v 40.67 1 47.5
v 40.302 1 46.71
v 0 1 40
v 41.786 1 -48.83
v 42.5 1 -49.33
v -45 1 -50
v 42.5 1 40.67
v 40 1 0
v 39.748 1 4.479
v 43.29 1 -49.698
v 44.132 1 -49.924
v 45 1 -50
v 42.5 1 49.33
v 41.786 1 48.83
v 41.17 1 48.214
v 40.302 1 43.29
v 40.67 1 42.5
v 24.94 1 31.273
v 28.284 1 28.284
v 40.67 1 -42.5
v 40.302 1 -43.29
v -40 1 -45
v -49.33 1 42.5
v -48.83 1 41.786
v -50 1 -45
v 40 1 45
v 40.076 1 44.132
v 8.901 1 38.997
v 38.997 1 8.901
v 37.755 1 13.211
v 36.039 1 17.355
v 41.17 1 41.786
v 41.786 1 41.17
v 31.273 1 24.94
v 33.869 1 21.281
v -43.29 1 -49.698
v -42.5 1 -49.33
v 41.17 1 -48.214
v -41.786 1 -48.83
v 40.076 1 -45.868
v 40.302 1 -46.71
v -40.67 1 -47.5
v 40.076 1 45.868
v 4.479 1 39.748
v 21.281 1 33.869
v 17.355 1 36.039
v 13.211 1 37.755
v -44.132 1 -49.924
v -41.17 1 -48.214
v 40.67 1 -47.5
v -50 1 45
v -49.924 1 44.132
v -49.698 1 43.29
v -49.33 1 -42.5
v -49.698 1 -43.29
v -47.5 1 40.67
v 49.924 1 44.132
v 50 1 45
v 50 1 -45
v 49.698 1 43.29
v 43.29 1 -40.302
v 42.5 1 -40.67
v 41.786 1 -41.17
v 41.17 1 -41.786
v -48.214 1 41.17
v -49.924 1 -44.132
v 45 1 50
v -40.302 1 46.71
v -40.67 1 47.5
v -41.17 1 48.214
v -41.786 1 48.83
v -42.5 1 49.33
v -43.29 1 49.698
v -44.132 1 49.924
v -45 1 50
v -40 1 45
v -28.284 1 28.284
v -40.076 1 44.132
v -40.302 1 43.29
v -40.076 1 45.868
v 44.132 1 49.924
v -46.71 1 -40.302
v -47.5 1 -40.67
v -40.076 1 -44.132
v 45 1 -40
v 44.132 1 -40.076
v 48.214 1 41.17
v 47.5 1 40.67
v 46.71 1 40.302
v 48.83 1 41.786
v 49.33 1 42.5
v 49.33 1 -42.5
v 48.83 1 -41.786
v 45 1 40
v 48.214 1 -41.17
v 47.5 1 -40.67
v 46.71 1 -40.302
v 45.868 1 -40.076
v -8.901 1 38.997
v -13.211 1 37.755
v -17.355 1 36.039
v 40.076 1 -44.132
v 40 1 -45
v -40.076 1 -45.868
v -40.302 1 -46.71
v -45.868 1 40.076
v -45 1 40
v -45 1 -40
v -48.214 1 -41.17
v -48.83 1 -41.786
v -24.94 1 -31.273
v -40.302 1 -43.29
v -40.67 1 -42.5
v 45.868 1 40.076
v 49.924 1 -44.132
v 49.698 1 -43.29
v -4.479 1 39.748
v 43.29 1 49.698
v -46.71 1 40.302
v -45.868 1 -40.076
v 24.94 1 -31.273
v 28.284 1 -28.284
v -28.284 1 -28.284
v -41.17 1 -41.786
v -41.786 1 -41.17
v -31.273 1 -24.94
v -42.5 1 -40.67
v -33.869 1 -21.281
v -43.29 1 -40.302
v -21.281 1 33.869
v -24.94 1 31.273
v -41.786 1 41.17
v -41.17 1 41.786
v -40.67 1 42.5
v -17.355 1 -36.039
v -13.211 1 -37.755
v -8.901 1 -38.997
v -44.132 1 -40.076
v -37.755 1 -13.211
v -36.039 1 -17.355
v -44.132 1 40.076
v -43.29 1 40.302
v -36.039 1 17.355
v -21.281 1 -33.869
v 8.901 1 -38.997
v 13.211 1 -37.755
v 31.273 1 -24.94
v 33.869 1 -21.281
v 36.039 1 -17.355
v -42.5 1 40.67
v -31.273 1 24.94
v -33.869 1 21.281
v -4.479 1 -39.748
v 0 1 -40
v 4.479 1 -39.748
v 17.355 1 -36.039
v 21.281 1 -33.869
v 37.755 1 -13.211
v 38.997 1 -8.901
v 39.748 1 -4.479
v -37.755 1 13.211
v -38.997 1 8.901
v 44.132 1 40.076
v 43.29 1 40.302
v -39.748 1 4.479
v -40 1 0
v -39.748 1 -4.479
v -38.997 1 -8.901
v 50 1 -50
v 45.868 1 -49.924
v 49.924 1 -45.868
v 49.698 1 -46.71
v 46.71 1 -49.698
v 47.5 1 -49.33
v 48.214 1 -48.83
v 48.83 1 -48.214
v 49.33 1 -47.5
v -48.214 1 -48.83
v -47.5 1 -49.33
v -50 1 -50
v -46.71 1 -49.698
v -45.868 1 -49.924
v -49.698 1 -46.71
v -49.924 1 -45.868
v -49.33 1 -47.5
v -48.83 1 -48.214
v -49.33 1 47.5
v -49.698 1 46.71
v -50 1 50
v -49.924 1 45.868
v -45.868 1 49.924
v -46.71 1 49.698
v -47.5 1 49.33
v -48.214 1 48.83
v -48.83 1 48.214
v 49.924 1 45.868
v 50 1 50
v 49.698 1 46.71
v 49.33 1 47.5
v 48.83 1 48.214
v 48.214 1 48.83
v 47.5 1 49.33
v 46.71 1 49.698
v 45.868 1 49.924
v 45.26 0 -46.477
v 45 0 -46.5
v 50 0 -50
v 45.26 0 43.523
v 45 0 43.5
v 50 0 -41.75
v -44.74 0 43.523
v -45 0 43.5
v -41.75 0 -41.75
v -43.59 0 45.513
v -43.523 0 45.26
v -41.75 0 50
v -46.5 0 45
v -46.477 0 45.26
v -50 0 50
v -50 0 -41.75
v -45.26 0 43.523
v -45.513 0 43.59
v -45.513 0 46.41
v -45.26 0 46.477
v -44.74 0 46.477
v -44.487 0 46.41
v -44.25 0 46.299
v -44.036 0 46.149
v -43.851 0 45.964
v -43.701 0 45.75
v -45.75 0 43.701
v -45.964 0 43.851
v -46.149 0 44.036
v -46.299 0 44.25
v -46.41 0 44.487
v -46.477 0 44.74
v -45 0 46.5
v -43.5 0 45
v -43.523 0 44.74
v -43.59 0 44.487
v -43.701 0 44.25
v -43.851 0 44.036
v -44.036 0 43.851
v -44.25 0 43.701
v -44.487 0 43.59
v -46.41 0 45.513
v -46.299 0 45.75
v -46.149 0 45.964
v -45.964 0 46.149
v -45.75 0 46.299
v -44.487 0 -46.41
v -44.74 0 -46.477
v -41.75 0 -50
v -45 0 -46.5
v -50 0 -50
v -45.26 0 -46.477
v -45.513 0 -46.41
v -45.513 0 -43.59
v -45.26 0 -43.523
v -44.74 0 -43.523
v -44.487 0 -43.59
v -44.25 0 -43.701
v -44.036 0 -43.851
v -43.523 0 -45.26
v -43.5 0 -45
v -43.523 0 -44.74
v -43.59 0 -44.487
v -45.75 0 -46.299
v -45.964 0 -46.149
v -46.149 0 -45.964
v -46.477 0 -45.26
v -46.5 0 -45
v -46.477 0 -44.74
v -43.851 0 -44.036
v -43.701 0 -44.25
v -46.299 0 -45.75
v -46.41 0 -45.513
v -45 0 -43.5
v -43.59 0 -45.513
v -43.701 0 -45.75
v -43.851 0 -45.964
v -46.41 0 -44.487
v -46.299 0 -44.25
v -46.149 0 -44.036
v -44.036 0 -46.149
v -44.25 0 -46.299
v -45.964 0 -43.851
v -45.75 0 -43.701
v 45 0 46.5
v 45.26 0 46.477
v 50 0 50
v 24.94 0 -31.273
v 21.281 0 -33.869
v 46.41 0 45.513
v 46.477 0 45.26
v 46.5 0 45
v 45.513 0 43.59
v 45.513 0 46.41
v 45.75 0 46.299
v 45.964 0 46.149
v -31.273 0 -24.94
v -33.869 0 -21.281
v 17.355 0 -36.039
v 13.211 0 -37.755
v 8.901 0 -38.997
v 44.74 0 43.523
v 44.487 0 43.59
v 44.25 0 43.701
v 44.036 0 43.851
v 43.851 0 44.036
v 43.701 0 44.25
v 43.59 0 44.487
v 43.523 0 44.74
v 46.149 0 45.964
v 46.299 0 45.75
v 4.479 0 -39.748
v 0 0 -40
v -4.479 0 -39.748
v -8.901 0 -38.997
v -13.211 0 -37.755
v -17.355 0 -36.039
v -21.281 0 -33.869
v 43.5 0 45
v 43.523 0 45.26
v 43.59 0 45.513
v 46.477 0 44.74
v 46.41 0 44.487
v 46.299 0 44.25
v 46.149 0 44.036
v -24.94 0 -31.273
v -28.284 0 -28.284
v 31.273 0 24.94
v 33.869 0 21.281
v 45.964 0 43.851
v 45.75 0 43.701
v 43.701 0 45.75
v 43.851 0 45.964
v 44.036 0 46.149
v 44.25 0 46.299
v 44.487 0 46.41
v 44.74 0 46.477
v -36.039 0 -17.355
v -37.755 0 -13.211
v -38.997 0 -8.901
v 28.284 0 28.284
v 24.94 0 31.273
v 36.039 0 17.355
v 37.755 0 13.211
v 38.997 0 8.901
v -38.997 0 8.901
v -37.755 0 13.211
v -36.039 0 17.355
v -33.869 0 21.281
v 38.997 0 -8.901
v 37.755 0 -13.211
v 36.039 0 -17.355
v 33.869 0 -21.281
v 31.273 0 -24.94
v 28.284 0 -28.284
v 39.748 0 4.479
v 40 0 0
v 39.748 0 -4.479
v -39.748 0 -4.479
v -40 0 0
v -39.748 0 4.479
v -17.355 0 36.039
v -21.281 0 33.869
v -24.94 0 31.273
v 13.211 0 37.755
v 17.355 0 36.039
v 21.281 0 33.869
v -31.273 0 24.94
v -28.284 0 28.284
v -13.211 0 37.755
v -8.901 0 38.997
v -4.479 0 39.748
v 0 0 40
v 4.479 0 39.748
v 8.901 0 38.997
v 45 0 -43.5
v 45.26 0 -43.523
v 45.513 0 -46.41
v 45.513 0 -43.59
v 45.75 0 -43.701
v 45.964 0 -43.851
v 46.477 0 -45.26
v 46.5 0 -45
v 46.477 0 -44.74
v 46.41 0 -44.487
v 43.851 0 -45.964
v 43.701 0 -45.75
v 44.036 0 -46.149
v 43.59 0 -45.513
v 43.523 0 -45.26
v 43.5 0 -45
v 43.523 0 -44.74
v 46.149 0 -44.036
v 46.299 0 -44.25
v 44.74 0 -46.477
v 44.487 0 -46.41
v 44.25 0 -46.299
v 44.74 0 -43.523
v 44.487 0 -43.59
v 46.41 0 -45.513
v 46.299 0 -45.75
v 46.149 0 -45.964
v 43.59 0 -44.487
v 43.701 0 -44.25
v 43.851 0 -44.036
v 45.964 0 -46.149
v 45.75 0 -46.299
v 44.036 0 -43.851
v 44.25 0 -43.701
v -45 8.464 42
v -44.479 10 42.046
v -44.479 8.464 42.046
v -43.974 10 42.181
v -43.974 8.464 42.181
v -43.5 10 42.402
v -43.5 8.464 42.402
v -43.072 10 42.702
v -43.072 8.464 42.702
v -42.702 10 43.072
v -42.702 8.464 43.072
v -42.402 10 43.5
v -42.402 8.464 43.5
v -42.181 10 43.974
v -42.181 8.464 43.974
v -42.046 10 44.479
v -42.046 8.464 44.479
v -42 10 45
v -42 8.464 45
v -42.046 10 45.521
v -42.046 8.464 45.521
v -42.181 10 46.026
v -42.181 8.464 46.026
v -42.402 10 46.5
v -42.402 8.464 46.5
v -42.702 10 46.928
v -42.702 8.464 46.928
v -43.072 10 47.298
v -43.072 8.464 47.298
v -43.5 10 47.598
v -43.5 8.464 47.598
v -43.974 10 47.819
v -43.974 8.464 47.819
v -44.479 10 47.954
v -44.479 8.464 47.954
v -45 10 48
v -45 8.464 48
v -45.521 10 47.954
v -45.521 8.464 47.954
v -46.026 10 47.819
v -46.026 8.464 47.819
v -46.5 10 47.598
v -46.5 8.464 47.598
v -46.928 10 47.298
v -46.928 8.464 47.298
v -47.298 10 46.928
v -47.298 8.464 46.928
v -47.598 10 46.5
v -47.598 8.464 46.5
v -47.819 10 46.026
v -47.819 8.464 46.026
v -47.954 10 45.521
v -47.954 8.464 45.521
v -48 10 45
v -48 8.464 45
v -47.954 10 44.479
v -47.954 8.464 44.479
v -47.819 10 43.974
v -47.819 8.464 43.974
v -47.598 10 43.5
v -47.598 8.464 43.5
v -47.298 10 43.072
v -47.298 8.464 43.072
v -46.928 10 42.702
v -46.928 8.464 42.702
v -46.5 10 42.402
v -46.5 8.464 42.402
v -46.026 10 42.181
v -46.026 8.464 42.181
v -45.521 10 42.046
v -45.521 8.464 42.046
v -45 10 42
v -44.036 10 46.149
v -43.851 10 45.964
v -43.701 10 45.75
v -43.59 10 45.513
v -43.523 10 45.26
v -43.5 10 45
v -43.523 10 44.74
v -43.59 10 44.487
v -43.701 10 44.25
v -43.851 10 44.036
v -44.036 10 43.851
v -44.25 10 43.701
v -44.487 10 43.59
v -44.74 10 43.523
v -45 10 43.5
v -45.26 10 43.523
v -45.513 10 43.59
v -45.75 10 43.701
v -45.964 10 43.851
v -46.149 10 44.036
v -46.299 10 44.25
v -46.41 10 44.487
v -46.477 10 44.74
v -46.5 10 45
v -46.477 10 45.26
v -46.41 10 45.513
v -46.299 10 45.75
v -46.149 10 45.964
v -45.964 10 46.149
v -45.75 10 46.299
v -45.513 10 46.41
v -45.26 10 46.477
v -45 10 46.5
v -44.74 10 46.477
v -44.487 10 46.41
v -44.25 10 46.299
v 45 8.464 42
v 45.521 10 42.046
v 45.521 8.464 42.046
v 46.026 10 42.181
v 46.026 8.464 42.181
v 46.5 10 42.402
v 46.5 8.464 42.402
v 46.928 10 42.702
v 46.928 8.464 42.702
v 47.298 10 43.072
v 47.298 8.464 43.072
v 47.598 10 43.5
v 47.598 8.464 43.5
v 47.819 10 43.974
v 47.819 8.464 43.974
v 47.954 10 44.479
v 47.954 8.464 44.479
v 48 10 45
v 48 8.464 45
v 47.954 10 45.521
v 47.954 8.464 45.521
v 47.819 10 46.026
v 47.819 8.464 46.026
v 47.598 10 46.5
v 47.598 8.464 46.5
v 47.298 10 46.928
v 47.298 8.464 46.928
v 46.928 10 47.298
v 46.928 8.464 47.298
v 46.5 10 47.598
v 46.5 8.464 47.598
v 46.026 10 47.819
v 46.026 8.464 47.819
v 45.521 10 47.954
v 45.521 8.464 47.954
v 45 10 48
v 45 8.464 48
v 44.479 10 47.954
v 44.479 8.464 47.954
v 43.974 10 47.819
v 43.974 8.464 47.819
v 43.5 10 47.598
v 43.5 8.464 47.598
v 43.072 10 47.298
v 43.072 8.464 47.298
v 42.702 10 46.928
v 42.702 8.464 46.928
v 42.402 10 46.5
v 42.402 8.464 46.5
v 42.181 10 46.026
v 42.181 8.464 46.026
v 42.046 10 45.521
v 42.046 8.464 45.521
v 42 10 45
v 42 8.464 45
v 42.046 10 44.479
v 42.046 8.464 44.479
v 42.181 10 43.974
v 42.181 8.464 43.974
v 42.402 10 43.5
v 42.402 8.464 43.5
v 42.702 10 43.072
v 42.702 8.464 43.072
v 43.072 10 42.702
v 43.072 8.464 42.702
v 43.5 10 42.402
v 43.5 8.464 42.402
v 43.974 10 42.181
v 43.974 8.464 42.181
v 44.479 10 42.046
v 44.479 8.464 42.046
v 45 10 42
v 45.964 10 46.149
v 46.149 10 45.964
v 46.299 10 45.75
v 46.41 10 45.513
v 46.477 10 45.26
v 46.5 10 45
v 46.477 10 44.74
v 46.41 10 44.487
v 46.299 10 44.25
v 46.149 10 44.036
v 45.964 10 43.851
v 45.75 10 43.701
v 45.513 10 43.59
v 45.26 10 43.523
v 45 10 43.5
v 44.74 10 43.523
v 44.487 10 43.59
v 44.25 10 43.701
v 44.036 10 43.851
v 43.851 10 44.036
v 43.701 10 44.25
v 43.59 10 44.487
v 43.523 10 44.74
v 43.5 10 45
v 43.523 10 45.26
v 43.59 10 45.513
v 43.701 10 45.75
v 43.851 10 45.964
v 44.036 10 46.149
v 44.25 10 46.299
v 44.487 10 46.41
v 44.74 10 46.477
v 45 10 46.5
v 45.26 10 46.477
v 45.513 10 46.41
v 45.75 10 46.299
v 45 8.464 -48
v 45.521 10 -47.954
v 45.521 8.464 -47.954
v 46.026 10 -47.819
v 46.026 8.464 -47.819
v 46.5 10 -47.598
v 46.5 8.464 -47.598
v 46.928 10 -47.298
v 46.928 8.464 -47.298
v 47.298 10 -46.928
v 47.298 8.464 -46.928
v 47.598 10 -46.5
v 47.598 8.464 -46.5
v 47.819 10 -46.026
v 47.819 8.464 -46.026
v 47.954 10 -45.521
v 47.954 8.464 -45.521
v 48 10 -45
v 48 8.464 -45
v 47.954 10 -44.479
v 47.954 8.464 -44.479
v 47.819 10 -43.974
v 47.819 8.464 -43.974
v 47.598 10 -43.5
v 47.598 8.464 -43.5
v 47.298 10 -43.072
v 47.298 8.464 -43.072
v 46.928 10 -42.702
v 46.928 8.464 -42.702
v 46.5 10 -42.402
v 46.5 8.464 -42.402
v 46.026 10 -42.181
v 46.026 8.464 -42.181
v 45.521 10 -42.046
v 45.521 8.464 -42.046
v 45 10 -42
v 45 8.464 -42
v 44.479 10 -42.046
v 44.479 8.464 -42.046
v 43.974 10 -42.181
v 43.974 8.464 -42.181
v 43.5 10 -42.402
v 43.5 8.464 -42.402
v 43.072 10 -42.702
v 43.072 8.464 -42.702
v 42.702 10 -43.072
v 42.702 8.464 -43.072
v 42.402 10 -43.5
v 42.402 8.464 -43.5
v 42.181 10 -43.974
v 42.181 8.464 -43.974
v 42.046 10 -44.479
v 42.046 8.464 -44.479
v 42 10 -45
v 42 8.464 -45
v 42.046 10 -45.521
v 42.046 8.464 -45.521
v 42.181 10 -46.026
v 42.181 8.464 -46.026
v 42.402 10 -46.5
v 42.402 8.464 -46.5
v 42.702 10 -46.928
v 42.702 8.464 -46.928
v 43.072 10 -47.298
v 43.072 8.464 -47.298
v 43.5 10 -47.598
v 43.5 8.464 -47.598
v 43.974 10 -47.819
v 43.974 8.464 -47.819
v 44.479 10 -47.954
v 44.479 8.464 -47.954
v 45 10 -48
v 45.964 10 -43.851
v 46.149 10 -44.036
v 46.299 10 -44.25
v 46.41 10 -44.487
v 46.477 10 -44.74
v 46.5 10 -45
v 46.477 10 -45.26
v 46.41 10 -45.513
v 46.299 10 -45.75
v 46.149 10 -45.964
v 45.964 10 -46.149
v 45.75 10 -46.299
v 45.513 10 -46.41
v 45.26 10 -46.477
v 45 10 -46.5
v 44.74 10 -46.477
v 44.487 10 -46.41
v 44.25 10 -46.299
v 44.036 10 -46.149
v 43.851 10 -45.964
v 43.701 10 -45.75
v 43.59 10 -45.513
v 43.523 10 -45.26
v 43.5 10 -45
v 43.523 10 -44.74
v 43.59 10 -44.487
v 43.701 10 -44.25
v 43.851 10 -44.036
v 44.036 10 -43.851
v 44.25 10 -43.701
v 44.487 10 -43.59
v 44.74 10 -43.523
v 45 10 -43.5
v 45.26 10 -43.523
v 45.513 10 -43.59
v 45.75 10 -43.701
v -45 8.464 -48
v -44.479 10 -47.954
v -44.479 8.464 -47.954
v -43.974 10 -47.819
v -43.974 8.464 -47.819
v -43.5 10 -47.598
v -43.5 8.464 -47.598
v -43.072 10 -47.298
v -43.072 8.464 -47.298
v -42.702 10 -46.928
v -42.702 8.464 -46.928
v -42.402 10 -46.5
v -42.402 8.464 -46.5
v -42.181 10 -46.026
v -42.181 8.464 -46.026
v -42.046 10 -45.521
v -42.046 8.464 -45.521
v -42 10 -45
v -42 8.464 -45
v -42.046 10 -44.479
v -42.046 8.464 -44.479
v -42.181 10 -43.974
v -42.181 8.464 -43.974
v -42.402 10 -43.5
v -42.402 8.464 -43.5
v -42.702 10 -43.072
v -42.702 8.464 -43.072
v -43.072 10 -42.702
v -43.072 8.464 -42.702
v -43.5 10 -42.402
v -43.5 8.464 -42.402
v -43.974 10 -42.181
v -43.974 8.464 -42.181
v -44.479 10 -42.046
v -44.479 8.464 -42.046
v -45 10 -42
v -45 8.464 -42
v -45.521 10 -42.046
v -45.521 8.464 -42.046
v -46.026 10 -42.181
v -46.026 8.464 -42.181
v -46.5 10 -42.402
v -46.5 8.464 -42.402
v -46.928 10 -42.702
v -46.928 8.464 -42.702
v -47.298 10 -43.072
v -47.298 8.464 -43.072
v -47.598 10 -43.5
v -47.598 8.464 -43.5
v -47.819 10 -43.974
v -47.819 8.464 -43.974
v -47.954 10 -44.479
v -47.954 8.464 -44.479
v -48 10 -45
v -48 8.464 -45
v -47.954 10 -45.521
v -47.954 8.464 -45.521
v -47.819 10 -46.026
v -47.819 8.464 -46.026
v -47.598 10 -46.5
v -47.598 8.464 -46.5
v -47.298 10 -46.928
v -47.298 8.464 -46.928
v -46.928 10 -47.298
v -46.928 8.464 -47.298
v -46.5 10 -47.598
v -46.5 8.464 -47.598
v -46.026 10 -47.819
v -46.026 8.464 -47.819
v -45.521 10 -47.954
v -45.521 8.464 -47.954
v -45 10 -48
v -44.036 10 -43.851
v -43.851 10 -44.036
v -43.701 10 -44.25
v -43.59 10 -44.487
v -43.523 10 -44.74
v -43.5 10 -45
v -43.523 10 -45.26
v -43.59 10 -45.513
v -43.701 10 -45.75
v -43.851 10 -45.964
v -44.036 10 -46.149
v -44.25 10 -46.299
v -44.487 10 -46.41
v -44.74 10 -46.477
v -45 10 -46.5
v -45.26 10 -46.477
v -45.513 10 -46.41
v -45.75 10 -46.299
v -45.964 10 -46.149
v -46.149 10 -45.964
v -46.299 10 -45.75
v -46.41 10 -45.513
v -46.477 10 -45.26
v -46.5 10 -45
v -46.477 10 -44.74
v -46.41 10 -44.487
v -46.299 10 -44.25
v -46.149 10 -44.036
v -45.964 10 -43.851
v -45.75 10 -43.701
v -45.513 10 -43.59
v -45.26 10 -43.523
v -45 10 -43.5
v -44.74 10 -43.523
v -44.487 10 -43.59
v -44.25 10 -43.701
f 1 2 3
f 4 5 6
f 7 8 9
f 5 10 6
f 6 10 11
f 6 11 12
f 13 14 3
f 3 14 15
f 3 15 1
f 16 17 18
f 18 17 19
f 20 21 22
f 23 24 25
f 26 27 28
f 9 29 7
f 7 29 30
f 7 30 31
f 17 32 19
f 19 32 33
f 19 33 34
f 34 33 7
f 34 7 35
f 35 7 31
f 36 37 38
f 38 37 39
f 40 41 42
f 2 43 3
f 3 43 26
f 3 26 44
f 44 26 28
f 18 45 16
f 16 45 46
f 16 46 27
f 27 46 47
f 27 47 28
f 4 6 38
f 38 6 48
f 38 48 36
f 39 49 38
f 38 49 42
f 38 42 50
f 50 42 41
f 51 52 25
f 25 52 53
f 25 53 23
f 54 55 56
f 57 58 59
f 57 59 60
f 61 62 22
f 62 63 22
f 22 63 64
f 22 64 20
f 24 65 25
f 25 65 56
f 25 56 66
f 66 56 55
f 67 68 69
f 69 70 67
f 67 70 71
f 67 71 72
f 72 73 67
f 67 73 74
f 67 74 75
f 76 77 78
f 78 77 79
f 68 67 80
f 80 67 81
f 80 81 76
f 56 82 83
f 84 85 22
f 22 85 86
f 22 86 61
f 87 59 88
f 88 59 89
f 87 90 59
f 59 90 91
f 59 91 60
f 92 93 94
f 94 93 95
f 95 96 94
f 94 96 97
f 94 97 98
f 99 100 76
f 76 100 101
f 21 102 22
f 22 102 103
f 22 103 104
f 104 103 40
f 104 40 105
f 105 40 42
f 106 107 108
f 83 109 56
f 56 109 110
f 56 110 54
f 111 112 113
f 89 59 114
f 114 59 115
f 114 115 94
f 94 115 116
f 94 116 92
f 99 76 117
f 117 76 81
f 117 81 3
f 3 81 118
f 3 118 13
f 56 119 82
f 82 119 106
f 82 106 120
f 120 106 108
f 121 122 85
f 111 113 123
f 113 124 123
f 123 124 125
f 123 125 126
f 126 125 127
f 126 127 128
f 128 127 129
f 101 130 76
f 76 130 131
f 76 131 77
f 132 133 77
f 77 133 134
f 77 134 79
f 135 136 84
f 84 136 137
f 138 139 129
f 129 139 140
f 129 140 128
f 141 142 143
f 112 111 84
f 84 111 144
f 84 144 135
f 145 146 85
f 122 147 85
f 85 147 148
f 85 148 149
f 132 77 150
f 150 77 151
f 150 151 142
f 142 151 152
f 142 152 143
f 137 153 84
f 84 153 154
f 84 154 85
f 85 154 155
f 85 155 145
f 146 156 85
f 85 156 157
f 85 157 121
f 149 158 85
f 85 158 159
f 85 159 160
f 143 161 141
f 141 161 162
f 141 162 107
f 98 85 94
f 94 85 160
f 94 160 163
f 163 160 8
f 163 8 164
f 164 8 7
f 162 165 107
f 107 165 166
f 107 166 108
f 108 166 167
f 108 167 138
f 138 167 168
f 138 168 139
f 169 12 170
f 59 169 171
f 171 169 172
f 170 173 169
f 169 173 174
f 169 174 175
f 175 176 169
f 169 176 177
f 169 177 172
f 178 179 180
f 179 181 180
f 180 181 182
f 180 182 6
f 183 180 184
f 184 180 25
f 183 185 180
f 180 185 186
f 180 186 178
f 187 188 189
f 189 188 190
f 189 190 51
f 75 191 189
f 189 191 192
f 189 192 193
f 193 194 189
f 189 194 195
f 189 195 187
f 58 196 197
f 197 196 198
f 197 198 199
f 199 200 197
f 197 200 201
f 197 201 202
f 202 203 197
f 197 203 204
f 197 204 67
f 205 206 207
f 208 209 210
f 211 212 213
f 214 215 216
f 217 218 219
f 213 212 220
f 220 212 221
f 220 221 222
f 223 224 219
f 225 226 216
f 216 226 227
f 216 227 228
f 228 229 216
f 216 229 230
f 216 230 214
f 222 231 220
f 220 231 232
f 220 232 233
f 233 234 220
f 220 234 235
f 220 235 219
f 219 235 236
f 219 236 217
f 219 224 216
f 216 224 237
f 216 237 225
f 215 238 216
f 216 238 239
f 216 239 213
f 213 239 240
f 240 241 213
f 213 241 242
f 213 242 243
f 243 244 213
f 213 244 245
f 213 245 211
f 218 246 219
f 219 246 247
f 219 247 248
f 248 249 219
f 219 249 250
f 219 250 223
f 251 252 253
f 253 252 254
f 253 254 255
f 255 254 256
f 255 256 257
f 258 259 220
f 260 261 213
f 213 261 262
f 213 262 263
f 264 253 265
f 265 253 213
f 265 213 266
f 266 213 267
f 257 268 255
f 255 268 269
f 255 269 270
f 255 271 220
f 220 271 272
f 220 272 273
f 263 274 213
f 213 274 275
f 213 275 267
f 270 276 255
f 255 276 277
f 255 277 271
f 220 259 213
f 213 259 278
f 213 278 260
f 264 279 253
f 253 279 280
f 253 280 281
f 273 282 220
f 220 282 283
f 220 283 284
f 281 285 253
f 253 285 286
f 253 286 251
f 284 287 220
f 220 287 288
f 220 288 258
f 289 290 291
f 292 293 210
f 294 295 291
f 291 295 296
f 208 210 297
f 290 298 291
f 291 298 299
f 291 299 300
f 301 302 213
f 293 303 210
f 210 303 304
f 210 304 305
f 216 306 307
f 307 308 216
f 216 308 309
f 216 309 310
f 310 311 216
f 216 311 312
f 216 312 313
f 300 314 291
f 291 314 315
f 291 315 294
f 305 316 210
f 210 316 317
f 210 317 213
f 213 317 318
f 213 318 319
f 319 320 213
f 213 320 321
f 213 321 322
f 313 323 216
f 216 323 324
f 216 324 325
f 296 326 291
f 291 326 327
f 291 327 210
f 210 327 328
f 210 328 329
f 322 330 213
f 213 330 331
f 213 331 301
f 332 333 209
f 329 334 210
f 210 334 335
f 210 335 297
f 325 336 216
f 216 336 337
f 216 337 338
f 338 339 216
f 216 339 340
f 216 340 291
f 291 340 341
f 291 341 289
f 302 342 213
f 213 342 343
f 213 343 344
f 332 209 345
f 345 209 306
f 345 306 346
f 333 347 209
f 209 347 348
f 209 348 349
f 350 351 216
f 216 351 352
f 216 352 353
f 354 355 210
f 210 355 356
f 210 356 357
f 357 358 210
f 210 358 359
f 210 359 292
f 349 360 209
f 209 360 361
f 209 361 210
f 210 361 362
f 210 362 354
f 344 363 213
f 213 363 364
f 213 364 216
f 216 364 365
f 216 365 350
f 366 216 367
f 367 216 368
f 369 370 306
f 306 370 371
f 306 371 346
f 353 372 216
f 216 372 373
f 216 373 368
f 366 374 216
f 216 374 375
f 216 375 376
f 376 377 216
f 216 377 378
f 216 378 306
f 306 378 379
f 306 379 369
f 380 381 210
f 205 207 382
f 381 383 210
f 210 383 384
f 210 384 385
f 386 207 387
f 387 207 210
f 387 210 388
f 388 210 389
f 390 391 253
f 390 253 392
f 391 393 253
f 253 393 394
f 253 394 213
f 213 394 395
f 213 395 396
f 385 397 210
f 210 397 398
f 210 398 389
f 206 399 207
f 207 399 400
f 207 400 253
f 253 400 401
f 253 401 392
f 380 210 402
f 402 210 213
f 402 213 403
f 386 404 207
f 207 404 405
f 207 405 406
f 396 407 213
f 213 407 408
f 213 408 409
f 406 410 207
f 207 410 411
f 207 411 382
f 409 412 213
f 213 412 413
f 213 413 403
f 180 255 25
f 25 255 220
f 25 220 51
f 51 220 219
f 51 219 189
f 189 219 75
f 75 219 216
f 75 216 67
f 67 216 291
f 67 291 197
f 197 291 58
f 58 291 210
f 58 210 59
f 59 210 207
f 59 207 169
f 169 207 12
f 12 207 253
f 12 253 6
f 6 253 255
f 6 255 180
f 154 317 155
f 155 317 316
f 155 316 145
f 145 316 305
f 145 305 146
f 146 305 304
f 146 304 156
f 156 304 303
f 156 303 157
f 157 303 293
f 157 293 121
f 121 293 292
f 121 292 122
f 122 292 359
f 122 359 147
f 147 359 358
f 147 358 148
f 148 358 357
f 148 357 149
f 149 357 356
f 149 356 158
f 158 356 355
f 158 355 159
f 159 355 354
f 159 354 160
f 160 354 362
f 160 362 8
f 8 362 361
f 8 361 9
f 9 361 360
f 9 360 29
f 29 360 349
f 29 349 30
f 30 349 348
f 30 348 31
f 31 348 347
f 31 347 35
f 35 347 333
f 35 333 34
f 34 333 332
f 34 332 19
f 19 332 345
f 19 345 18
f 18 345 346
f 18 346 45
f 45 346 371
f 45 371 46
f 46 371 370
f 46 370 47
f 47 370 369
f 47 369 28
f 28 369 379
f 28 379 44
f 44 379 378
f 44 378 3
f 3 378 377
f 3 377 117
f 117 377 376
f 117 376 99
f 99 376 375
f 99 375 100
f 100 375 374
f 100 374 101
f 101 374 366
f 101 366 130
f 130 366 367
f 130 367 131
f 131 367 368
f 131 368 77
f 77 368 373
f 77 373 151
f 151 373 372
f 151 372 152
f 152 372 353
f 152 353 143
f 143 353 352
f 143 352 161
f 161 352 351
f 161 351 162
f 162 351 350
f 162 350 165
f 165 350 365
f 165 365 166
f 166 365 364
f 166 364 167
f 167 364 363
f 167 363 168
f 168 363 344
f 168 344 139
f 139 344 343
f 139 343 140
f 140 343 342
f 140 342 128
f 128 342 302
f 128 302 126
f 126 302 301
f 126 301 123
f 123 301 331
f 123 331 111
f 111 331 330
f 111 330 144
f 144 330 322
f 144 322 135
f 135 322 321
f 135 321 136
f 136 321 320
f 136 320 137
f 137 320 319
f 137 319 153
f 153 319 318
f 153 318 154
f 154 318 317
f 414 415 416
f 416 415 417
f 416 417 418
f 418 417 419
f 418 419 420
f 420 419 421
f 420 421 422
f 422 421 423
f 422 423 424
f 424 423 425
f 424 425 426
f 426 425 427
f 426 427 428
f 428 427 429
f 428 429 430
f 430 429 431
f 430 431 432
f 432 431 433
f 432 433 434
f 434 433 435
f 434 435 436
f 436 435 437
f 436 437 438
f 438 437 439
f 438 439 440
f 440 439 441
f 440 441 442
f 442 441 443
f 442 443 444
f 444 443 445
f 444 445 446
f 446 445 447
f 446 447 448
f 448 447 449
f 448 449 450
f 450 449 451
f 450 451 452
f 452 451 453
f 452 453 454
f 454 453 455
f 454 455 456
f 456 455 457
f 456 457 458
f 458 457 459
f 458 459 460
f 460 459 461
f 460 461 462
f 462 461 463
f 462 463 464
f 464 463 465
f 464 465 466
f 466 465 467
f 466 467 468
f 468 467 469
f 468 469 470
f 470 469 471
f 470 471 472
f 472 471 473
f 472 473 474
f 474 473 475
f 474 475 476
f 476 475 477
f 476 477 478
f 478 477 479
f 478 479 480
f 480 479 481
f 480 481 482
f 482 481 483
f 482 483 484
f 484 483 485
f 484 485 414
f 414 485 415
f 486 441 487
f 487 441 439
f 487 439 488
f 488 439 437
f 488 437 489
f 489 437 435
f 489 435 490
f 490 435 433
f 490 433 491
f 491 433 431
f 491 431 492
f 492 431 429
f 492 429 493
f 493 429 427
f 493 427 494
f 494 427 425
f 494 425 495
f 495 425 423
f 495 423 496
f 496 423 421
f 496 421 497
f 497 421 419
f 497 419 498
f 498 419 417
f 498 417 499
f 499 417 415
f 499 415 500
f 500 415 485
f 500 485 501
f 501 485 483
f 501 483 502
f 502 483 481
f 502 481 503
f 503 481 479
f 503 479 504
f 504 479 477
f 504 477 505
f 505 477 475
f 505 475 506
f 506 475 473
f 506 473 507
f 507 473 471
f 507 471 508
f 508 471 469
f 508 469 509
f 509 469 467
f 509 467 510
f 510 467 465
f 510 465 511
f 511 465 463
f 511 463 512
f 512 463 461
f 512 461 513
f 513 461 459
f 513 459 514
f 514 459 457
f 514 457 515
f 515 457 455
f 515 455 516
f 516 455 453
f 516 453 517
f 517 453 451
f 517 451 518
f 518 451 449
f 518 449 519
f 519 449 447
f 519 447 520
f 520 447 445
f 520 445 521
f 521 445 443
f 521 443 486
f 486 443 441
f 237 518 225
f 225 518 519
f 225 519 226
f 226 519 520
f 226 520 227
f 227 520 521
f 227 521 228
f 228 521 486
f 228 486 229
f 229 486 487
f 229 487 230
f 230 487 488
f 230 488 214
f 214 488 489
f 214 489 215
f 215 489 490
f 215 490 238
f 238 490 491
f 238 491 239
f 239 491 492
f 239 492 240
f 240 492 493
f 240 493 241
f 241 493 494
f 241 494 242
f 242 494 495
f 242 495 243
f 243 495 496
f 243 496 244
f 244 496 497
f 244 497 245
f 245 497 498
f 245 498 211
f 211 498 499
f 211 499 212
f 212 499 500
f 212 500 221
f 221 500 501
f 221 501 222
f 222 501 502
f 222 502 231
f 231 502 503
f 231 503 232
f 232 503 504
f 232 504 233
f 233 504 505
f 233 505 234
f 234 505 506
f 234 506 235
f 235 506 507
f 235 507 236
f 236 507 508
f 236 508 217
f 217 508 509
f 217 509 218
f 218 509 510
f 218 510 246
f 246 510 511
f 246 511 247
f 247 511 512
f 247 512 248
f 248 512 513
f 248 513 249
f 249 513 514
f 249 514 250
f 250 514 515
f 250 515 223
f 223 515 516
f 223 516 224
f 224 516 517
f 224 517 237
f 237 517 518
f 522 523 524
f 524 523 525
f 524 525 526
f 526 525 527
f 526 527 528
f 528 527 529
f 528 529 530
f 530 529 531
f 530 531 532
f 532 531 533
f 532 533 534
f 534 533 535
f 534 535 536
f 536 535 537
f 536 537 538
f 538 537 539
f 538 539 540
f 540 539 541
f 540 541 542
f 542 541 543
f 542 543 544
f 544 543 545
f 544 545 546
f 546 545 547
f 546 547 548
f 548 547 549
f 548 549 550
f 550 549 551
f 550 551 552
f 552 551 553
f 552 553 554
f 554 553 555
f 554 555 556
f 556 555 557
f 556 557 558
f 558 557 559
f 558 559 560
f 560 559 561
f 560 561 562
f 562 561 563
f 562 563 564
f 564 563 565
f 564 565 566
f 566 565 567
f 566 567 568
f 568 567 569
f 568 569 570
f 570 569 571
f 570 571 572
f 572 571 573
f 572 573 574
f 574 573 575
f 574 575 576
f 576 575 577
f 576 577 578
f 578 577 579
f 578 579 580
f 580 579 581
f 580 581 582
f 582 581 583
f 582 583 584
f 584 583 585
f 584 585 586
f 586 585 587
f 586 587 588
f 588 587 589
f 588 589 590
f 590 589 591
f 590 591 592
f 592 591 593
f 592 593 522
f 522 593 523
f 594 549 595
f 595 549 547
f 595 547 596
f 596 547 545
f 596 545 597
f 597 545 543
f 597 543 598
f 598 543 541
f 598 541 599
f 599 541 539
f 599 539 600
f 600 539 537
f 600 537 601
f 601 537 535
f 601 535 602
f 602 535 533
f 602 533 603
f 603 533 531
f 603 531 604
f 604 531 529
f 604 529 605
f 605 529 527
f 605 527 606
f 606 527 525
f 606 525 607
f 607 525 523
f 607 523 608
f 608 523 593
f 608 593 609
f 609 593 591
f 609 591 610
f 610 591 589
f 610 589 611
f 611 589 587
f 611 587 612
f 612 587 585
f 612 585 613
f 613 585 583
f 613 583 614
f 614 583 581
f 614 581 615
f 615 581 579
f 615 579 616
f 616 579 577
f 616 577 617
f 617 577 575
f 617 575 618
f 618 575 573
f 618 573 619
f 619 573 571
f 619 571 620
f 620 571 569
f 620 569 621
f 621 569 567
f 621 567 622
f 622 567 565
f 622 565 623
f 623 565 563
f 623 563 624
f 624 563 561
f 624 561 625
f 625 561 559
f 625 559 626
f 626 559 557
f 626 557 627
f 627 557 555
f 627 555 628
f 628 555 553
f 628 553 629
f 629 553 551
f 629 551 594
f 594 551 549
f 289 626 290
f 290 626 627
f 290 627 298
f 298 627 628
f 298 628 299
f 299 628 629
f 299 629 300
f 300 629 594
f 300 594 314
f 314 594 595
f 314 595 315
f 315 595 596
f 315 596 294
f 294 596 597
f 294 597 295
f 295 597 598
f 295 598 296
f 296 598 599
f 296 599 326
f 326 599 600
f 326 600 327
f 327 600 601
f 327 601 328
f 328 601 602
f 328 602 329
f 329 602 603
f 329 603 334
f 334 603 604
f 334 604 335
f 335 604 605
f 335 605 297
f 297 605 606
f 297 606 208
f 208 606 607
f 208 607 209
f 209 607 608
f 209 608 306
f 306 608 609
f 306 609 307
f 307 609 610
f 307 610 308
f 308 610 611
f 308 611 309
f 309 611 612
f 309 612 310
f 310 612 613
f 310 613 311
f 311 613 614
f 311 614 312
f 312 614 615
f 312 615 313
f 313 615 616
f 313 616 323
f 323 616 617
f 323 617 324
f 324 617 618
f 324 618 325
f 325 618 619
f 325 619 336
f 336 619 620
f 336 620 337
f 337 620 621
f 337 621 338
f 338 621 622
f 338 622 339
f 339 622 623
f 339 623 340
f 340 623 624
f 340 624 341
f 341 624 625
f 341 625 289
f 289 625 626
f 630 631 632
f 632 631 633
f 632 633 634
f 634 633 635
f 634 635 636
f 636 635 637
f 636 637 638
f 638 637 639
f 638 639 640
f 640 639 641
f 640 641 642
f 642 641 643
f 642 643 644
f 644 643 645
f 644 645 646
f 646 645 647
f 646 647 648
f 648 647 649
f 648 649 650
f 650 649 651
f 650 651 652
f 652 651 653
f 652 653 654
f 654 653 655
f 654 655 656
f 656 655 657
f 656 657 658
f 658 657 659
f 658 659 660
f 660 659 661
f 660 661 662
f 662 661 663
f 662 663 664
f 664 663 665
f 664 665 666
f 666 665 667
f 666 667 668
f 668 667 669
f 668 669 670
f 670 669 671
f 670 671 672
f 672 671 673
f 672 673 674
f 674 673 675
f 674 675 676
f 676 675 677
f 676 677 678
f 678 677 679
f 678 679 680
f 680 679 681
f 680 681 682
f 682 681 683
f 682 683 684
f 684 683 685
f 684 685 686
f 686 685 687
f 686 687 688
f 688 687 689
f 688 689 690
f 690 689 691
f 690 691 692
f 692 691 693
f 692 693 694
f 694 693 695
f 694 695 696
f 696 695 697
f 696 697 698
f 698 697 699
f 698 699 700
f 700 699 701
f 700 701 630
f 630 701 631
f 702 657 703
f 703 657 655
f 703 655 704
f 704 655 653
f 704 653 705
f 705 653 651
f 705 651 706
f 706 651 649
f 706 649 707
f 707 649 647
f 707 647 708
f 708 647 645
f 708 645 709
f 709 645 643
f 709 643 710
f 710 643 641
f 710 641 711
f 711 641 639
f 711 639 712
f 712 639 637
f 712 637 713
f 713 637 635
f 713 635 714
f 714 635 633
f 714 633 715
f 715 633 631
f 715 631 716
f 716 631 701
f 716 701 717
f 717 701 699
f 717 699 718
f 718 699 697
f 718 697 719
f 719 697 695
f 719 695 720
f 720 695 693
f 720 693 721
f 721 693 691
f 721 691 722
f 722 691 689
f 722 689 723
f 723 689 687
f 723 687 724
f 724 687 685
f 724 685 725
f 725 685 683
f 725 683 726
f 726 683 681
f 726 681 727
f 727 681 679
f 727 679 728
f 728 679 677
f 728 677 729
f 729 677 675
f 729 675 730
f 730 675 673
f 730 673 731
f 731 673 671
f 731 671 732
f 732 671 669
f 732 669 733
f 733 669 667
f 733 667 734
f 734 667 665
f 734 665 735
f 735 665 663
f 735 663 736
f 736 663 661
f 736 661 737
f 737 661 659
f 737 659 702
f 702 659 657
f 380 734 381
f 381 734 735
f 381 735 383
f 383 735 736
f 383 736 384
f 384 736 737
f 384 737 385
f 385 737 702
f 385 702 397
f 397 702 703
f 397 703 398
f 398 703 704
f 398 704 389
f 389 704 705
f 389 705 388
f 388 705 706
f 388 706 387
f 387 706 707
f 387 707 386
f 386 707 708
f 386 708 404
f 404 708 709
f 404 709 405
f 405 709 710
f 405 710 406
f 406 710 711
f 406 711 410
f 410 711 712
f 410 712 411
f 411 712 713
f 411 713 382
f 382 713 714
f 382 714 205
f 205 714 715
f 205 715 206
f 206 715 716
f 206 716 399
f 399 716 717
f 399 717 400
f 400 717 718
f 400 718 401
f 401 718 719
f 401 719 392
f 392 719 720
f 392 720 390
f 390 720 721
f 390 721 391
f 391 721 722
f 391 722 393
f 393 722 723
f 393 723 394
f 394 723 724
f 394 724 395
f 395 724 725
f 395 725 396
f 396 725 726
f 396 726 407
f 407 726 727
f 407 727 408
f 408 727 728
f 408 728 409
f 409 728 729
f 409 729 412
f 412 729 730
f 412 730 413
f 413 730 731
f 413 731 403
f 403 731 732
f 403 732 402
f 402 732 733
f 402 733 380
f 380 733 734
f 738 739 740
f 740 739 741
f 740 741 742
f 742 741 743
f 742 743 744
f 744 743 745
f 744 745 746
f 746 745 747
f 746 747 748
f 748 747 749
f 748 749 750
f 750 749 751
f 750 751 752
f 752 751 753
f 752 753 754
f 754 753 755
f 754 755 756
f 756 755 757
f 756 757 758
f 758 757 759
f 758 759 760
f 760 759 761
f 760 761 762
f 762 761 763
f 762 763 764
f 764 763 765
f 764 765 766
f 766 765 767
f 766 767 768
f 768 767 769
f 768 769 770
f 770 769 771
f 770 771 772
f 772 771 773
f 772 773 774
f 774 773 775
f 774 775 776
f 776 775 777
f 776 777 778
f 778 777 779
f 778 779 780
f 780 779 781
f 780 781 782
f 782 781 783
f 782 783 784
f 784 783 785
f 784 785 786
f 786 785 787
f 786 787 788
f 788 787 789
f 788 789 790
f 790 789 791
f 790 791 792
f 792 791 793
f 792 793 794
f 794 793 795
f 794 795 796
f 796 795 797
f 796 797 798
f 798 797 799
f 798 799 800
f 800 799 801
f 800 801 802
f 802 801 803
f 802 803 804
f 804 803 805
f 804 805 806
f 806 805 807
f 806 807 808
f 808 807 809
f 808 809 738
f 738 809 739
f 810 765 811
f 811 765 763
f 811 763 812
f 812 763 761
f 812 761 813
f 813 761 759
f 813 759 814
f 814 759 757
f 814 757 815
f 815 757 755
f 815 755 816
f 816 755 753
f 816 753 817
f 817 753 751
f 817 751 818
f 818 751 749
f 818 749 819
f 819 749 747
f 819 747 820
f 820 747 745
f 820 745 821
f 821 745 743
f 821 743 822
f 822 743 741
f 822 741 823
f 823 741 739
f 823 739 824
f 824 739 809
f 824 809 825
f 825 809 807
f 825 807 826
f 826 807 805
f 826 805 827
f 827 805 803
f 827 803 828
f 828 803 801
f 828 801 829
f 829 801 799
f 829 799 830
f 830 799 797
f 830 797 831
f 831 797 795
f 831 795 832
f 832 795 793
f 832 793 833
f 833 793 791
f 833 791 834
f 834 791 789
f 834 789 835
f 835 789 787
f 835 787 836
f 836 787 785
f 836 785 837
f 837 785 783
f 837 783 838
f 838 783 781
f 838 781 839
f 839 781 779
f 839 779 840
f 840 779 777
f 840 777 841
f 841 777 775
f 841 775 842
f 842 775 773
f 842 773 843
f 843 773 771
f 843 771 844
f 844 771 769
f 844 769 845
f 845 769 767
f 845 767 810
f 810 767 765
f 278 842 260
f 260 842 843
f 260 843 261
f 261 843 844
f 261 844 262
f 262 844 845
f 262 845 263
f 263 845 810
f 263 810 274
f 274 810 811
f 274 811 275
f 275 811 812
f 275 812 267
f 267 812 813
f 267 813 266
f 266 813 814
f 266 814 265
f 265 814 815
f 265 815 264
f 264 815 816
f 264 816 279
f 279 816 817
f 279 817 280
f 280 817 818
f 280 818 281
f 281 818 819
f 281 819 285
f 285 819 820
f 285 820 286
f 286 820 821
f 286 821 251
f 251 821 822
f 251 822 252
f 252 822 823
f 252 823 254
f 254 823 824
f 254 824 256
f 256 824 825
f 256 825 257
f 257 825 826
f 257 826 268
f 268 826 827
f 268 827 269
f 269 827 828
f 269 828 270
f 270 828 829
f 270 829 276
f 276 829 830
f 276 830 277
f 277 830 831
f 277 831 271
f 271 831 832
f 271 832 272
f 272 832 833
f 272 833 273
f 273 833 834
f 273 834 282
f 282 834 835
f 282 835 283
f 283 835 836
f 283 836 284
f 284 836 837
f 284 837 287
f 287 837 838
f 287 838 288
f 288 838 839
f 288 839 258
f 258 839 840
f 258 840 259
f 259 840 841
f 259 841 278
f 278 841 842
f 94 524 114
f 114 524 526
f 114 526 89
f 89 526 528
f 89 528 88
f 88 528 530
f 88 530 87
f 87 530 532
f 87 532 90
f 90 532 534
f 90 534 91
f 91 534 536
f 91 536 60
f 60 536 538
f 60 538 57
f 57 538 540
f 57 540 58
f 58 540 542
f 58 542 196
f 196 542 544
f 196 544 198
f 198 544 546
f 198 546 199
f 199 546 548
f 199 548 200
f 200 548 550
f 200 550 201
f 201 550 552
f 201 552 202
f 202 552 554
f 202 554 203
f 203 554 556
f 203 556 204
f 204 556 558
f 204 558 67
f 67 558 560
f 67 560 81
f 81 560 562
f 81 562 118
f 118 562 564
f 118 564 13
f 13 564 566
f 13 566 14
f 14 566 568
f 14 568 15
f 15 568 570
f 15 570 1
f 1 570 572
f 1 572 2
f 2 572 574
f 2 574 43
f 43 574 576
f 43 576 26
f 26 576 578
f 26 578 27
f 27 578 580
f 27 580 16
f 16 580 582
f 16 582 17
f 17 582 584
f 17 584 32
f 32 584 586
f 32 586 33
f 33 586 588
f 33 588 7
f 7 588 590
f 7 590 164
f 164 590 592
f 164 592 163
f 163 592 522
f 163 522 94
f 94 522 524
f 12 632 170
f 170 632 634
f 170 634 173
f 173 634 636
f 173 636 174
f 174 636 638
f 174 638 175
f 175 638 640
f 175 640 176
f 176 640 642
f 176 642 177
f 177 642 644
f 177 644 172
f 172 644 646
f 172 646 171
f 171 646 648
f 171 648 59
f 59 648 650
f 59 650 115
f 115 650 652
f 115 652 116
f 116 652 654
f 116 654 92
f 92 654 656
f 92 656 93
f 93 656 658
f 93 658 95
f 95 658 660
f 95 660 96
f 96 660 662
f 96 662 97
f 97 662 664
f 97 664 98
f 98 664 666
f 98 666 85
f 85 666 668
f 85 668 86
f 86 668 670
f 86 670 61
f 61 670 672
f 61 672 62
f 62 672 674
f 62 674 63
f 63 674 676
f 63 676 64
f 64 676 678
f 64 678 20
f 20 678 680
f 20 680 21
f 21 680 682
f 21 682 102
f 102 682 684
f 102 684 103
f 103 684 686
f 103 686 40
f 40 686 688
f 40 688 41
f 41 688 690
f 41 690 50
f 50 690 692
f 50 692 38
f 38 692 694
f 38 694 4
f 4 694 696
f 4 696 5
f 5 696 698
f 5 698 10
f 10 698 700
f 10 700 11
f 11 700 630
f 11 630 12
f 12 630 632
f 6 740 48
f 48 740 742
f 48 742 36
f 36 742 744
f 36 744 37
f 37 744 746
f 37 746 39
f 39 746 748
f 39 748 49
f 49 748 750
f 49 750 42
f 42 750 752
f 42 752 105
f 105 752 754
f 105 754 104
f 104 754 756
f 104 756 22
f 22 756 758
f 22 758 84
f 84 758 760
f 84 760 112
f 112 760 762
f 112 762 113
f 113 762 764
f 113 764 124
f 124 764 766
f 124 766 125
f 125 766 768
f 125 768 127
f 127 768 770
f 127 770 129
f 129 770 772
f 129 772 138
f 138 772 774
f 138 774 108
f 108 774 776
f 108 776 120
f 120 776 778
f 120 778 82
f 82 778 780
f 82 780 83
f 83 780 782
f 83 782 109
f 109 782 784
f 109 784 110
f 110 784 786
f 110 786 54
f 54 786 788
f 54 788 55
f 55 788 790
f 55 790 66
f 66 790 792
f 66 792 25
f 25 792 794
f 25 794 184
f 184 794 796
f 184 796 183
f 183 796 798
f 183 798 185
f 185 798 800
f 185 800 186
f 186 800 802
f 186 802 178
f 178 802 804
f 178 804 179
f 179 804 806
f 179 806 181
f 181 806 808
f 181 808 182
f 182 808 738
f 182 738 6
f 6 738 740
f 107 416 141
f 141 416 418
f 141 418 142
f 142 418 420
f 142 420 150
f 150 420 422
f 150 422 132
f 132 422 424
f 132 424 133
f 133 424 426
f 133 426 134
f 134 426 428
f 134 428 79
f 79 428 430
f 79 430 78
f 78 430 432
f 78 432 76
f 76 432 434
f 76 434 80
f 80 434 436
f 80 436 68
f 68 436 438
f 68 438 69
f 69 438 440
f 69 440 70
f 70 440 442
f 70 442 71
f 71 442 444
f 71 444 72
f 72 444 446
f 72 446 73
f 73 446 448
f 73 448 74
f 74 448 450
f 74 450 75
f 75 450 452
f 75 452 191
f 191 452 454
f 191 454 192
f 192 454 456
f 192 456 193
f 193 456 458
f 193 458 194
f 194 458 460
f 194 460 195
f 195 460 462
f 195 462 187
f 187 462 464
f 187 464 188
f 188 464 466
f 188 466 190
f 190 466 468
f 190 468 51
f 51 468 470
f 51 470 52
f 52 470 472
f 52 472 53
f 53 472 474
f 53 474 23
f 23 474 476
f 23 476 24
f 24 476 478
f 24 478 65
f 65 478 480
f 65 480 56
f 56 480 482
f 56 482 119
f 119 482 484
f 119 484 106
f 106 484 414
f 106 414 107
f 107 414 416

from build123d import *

# Parameters (mm, degrees)
SKETCH1_W                 = 100
SKETCH1_H                 = 100
SKETCH1_R                 = 40
BOSS_EXTRUDE1_DEPTH       = 1
SKETCH2_R                 = 3
SKETCH2_R_2               = 1.5
BOSS_EXTRUDE2_DEPTH       = 9
CUT_EXTRUDE1_START        = 9
SKETCH2_3_R               = 1.5
CUT_EXTRUDE1_DEPTH        = 10
MIRROR2_COPY_1_SKETCH_R   = 3
MIRROR2_COPY_1_SKETCH_R_2 = 1.5
MIRROR2_COPY_1_DEPTH      = 9
MIRROR2_START             = 9
MIRROR2_COPY_2_SKETCH_R   = 1.5
MIRROR2_COPY_2_DEPTH      = 10
CHAMFER1_SIZE             = 2
CHAMFER1_SIZE_2           = 7.464101615


with BuildPart() as part:
    # Sketch1 → Boss-Extrude1 (new body)
    with BuildSketch(Plane(origin=(0, 0, 0), x_dir=(1, 0, 0), z_dir=(0, 1, 0))):
        Rectangle(SKETCH1_W, SKETCH1_H)
        with Locations(Location((0, 0, 0), (0, 0, 270))):
            Circle(SKETCH1_R, mode=Mode.SUBTRACT)
    extrude(amount=BOSS_EXTRUDE1_DEPTH)

    # Sketch2 → Boss-Extrude2 (add)
    # profile 1 of 2: a face of its own
    with BuildSketch(Plane(origin=(0, 1, 0), x_dir=(1, 0, 0), z_dir=(0, 1, 0))):
        with Locations(Location((-45, -45, 0), (0, 0, 270))):
            Circle(SKETCH2_R)
        with Locations((-45, -45)):
            Circle(SKETCH2_R_2, mode=Mode.SUBTRACT)
    # profile 2 of 2: a face of its own
    with BuildSketch(Plane(origin=(0, 1, 0), x_dir=(1, 0, 0), z_dir=(0, 1, 0))):
        with Locations((-45, -45)):
            Circle(SKETCH2_R_2)
    boss_extrude2 = extrude(amount=BOSS_EXTRUDE2_DEPTH)

    # Sketch2<3> → Cut-Extrude1 (cut)
    with BuildSketch(Plane(origin=(0, 1, 0), x_dir=(1, 0, 0), z_dir=(0, 1, 0)).offset(CUT_EXTRUDE1_START)):
        with Locations(Location((-45, -45, 0), (0, 0, 270))):
            Circle(SKETCH2_3_R)
    cut_extrude1 = extrude(amount=-CUT_EXTRUDE1_DEPTH, mode=Mode.SUBTRACT)

    # Mirror1: Boss-Extrude2, Cut-Extrude1 across plane
    add(boss_extrude2.mirror(Plane(origin=(0, 0, 0), x_dir=(0, 0, 1), z_dir=(1, 0, 0))))
    add(cut_extrude1.mirror(Plane(origin=(0, 0, 0), x_dir=(0, 0, 1), z_dir=(1, 0, 0))), mode=Mode.SUBTRACT)

    # Mirror2: Boss-Extrude2, Cut-Extrude1 across plane
    add(boss_extrude2.mirror(Plane.XY))
    add(cut_extrude1.mirror(Plane.XY), mode=Mode.SUBTRACT)

    # Mirror2 copy 1 sketch → Mirror2 copy 1 (add)
    # profile 1 of 2: a face of its own
    with BuildSketch(Plane(origin=(0, 1, 0), x_dir=(-1, 0, 0), z_dir=(0, 1, 0))):
        with Locations(Location((-45, -45, 0), (0, 0, 270))):
            Circle(MIRROR2_COPY_1_SKETCH_R)
        with Locations((-45, -45)):
            Circle(MIRROR2_COPY_1_SKETCH_R_2, mode=Mode.SUBTRACT)
    # profile 2 of 2: a face of its own
    with BuildSketch(Plane(origin=(0, 1, 0), x_dir=(-1, 0, 0), z_dir=(0, 1, 0))):
        with Locations((-45, -45)):
            Circle(MIRROR2_COPY_1_SKETCH_R_2)
    extrude(amount=MIRROR2_COPY_1_DEPTH)

    # Mirror2 copy 2 sketch → Mirror2 copy 2 (cut)
    with BuildSketch(Plane(origin=(0, 1, 0), x_dir=(-1, 0, 0), z_dir=(0, 1, 0)).offset(MIRROR2_START)):
        with Locations(Location((-45, -45, 0), (0, 0, 270))):
            Circle(MIRROR2_COPY_2_SKETCH_R)
    extrude(amount=-MIRROR2_COPY_2_DEPTH, mode=Mode.SUBTRACT)

    # Chamfer1
    # the kernel refuses this chamfer: 7.464101615, 2 mm, written as the material it adds along each edge
    with BuildSketch(Plane(origin=(-45, 1, 45), x_dir=(0, 0, 1), z_dir=(-1, 0, 0))) as chamfer1_piece_1_section:
        Polygon((3 + CHAMFER1_SIZE, 0), (3, CHAMFER1_SIZE_2), (3, 0), align=None)
    chamfer1_piece_1 = revolve(axis=Axis((-45, 1, 45), (0, 1, 0)), mode=Mode.PRIVATE)
    chamfer1_piece_1 = split(chamfer1_piece_1, bisect_by=Plane(origin=(-45, 4.716774414, 50), z_dir=(0, 0, -1)), keep=Keep.TOP, mode=Mode.PRIVATE)
    chamfer1_piece_1 = split(chamfer1_piece_1, bisect_by=Plane(origin=(-50, 4.716774414, 41.057012278), z_dir=(1, 0, 0)), keep=Keep.TOP, mode=Mode.PRIVATE)
    add(chamfer1_piece_1)
    with BuildSketch(Plane(origin=(45, 1, 45), x_dir=(0, 0, 1), z_dir=(1, 0, 0))) as chamfer1_piece_2_section:
        Polygon((3 + CHAMFER1_SIZE, 0), (3, -CHAMFER1_SIZE_2), (3, 0), align=None)
    chamfer1_piece_2 = revolve(axis=Axis((45, 1, 45), (0, -1, 0)), mode=Mode.PRIVATE)
    chamfer1_piece_2 = split(chamfer1_piece_2, bisect_by=Plane(origin=(45, 4.716774414, 50), z_dir=(0, 0, -1)), keep=Keep.TOP, mode=Mode.PRIVATE)
    chamfer1_piece_2 = split(chamfer1_piece_2, bisect_by=Plane(origin=(50, 4.716774414, 41.057012278), z_dir=(-1, 0, 0)), keep=Keep.TOP, mode=Mode.PRIVATE)
    add(chamfer1_piece_2)
    with BuildSketch(Plane(origin=(45, 1, -45), x_dir=(0, 0, -1), z_dir=(1, 0, 0))) as chamfer1_piece_3_section:
        Polygon((3 + CHAMFER1_SIZE, 0), (3, CHAMFER1_SIZE_2), (3, 0), align=None)
    chamfer1_piece_3 = revolve(axis=Axis((45, 1, -45), (0, 1, 0)), mode=Mode.PRIVATE)
    chamfer1_piece_3 = split(chamfer1_piece_3, bisect_by=Plane(origin=(50, 4.716774414, -41.057012278), z_dir=(-1, 0, 0)), keep=Keep.TOP, mode=Mode.PRIVATE)
    chamfer1_piece_3 = split(chamfer1_piece_3, bisect_by=Plane(origin=(45, 4.716774414, -50), z_dir=(0, 0, 1)), keep=Keep.TOP, mode=Mode.PRIVATE)
    add(chamfer1_piece_3)
    with BuildSketch(Plane(origin=(-45, 1, -45), x_dir=(0, 0, -1), z_dir=(-1, 0, 0))) as chamfer1_piece_4_section:
        Polygon((3 + CHAMFER1_SIZE, 0), (3, -CHAMFER1_SIZE_2), (3, 0), align=None)
    chamfer1_piece_4 = revolve(axis=Axis((-45, 1, -45), (0, -1, 0)), mode=Mode.PRIVATE)
    chamfer1_piece_4 = split(chamfer1_piece_4, bisect_by=Plane(origin=(-50, 4.716774414, -41.057012278), z_dir=(1, 0, 0)), keep=Keep.TOP, mode=Mode.PRIVATE)
    chamfer1_piece_4 = split(chamfer1_piece_4, bisect_by=Plane(origin=(-45, 4.716774414, -50), z_dir=(0, 0, 1)), keep=Keep.TOP, mode=Mode.PRIVATE)
    add(chamfer1_piece_4)


solid = part.part
